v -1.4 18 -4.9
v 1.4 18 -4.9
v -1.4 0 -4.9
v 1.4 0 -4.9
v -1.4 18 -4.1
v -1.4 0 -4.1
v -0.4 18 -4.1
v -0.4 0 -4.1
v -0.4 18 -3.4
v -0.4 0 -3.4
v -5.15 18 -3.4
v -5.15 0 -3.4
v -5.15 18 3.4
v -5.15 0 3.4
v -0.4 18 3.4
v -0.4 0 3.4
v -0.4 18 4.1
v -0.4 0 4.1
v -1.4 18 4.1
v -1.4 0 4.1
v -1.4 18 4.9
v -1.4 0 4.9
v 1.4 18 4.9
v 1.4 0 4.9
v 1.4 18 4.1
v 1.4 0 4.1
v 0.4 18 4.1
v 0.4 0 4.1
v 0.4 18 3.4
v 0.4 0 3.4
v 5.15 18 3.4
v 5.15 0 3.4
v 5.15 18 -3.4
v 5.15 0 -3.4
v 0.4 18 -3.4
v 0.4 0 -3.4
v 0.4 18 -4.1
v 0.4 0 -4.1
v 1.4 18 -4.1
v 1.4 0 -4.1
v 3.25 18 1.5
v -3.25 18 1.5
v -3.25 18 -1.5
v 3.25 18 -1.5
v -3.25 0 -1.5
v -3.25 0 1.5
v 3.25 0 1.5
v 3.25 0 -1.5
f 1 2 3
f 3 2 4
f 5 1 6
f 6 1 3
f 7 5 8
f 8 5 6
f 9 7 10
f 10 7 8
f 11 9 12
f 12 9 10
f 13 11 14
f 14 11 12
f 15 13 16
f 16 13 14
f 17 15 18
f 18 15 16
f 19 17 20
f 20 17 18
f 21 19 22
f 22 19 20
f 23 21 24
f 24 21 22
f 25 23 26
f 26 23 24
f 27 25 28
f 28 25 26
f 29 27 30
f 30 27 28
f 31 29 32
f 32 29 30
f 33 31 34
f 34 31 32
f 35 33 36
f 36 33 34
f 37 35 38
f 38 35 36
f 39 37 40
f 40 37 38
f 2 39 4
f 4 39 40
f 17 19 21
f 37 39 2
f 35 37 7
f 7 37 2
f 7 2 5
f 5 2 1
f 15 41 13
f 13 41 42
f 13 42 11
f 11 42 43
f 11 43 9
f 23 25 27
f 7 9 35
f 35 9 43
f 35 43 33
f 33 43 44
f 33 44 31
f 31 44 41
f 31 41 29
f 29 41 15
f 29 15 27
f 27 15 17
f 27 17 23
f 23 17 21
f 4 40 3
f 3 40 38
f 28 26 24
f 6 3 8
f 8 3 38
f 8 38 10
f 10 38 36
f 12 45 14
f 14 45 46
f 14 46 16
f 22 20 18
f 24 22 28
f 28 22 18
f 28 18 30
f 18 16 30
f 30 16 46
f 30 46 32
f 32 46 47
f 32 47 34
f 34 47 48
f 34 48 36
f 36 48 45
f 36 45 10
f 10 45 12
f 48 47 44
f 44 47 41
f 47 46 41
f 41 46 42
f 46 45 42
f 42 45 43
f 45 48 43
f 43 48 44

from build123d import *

# Parameters (mm, degrees)
SKETCH3_W           = 2.8
SKETCH3_H           = 0.8
SKETCH3_W_2         = 0.8
SKETCH3_H_2         = 0.1
SKETCH3_H_3         = 0.4
SKETCH3_H_4         = 6.8
SKETCH3_W_3         = 0.1
SKETCH3_W_4         = 4.65
BOSS_EXTRUDE7_DEPTH = 18
SKETCH24_W          = 6.5
SKETCH24_H          = 3
CUT_EXTRUDE25_DEPTH = 18


with BuildPart() as part:
    # Sketch3 → Boss-Extrude7 (new body)
    with BuildSketch(Plane(origin=(0, 0, 0), x_dir=(1, 0, 0), z_dir=(0, 1, 0))):
        with Locations((0, 4.5)):
            Rectangle(SKETCH3_W, SKETCH3_H)
        with Locations((0, 4.05)):
            Rectangle(SKETCH3_W_2, SKETCH3_H_2)
        with Locations((0, 3.95)):
            Rectangle(SKETCH3_W_2, SKETCH3_H_2)
        with Locations((0, 3.7)):
            Rectangle(SKETCH3_W_2, SKETCH3_H_3)
        with Locations((0, 3.45)):
            Rectangle(SKETCH3_W_2, SKETCH3_H_2)
        Rectangle(SKETCH3_W_2, SKETCH3_H_4)
        with Locations((0.45, 0)):
            Rectangle(SKETCH3_W_3, SKETCH3_H_4)
        with Locations((2.825, 0)):
            Rectangle(SKETCH3_W_4, SKETCH3_H_4)
        with Locations((-0.45, 0)):
            Rectangle(SKETCH3_W_3, SKETCH3_H_4)
        with Locations((-2.825, 0)):
            Rectangle(SKETCH3_W_4, SKETCH3_H_4)
        with Locations((0, -3.45)):
            Rectangle(SKETCH3_W_2, SKETCH3_H_2)
        with Locations((0, -3.7)):
            Rectangle(SKETCH3_W_2, SKETCH3_H_3)
        with Locations((0, -3.95)):
            Rectangle(SKETCH3_W_2, SKETCH3_H_2)
        with Locations((0, -4.05)):
            Rectangle(SKETCH3_W_2, SKETCH3_H_2)
        with Locations((0, -4.5)):
            Rectangle(SKETCH3_W, SKETCH3_H)
    extrude(amount=BOSS_EXTRUDE7_DEPTH)

    # Sketch24 → Cut-Extrude25 (cut)
    with BuildSketch(Plane(origin=(0, 18, 0), x_dir=(1, 0, 0), z_dir=(0, 1, 0))):
        Rectangle(SKETCH24_W, SKETCH24_H)
    extrude(amount=-CUT_EXTRUDE25_DEPTH, mode=Mode.SUBTRACT)


solid = part.part
